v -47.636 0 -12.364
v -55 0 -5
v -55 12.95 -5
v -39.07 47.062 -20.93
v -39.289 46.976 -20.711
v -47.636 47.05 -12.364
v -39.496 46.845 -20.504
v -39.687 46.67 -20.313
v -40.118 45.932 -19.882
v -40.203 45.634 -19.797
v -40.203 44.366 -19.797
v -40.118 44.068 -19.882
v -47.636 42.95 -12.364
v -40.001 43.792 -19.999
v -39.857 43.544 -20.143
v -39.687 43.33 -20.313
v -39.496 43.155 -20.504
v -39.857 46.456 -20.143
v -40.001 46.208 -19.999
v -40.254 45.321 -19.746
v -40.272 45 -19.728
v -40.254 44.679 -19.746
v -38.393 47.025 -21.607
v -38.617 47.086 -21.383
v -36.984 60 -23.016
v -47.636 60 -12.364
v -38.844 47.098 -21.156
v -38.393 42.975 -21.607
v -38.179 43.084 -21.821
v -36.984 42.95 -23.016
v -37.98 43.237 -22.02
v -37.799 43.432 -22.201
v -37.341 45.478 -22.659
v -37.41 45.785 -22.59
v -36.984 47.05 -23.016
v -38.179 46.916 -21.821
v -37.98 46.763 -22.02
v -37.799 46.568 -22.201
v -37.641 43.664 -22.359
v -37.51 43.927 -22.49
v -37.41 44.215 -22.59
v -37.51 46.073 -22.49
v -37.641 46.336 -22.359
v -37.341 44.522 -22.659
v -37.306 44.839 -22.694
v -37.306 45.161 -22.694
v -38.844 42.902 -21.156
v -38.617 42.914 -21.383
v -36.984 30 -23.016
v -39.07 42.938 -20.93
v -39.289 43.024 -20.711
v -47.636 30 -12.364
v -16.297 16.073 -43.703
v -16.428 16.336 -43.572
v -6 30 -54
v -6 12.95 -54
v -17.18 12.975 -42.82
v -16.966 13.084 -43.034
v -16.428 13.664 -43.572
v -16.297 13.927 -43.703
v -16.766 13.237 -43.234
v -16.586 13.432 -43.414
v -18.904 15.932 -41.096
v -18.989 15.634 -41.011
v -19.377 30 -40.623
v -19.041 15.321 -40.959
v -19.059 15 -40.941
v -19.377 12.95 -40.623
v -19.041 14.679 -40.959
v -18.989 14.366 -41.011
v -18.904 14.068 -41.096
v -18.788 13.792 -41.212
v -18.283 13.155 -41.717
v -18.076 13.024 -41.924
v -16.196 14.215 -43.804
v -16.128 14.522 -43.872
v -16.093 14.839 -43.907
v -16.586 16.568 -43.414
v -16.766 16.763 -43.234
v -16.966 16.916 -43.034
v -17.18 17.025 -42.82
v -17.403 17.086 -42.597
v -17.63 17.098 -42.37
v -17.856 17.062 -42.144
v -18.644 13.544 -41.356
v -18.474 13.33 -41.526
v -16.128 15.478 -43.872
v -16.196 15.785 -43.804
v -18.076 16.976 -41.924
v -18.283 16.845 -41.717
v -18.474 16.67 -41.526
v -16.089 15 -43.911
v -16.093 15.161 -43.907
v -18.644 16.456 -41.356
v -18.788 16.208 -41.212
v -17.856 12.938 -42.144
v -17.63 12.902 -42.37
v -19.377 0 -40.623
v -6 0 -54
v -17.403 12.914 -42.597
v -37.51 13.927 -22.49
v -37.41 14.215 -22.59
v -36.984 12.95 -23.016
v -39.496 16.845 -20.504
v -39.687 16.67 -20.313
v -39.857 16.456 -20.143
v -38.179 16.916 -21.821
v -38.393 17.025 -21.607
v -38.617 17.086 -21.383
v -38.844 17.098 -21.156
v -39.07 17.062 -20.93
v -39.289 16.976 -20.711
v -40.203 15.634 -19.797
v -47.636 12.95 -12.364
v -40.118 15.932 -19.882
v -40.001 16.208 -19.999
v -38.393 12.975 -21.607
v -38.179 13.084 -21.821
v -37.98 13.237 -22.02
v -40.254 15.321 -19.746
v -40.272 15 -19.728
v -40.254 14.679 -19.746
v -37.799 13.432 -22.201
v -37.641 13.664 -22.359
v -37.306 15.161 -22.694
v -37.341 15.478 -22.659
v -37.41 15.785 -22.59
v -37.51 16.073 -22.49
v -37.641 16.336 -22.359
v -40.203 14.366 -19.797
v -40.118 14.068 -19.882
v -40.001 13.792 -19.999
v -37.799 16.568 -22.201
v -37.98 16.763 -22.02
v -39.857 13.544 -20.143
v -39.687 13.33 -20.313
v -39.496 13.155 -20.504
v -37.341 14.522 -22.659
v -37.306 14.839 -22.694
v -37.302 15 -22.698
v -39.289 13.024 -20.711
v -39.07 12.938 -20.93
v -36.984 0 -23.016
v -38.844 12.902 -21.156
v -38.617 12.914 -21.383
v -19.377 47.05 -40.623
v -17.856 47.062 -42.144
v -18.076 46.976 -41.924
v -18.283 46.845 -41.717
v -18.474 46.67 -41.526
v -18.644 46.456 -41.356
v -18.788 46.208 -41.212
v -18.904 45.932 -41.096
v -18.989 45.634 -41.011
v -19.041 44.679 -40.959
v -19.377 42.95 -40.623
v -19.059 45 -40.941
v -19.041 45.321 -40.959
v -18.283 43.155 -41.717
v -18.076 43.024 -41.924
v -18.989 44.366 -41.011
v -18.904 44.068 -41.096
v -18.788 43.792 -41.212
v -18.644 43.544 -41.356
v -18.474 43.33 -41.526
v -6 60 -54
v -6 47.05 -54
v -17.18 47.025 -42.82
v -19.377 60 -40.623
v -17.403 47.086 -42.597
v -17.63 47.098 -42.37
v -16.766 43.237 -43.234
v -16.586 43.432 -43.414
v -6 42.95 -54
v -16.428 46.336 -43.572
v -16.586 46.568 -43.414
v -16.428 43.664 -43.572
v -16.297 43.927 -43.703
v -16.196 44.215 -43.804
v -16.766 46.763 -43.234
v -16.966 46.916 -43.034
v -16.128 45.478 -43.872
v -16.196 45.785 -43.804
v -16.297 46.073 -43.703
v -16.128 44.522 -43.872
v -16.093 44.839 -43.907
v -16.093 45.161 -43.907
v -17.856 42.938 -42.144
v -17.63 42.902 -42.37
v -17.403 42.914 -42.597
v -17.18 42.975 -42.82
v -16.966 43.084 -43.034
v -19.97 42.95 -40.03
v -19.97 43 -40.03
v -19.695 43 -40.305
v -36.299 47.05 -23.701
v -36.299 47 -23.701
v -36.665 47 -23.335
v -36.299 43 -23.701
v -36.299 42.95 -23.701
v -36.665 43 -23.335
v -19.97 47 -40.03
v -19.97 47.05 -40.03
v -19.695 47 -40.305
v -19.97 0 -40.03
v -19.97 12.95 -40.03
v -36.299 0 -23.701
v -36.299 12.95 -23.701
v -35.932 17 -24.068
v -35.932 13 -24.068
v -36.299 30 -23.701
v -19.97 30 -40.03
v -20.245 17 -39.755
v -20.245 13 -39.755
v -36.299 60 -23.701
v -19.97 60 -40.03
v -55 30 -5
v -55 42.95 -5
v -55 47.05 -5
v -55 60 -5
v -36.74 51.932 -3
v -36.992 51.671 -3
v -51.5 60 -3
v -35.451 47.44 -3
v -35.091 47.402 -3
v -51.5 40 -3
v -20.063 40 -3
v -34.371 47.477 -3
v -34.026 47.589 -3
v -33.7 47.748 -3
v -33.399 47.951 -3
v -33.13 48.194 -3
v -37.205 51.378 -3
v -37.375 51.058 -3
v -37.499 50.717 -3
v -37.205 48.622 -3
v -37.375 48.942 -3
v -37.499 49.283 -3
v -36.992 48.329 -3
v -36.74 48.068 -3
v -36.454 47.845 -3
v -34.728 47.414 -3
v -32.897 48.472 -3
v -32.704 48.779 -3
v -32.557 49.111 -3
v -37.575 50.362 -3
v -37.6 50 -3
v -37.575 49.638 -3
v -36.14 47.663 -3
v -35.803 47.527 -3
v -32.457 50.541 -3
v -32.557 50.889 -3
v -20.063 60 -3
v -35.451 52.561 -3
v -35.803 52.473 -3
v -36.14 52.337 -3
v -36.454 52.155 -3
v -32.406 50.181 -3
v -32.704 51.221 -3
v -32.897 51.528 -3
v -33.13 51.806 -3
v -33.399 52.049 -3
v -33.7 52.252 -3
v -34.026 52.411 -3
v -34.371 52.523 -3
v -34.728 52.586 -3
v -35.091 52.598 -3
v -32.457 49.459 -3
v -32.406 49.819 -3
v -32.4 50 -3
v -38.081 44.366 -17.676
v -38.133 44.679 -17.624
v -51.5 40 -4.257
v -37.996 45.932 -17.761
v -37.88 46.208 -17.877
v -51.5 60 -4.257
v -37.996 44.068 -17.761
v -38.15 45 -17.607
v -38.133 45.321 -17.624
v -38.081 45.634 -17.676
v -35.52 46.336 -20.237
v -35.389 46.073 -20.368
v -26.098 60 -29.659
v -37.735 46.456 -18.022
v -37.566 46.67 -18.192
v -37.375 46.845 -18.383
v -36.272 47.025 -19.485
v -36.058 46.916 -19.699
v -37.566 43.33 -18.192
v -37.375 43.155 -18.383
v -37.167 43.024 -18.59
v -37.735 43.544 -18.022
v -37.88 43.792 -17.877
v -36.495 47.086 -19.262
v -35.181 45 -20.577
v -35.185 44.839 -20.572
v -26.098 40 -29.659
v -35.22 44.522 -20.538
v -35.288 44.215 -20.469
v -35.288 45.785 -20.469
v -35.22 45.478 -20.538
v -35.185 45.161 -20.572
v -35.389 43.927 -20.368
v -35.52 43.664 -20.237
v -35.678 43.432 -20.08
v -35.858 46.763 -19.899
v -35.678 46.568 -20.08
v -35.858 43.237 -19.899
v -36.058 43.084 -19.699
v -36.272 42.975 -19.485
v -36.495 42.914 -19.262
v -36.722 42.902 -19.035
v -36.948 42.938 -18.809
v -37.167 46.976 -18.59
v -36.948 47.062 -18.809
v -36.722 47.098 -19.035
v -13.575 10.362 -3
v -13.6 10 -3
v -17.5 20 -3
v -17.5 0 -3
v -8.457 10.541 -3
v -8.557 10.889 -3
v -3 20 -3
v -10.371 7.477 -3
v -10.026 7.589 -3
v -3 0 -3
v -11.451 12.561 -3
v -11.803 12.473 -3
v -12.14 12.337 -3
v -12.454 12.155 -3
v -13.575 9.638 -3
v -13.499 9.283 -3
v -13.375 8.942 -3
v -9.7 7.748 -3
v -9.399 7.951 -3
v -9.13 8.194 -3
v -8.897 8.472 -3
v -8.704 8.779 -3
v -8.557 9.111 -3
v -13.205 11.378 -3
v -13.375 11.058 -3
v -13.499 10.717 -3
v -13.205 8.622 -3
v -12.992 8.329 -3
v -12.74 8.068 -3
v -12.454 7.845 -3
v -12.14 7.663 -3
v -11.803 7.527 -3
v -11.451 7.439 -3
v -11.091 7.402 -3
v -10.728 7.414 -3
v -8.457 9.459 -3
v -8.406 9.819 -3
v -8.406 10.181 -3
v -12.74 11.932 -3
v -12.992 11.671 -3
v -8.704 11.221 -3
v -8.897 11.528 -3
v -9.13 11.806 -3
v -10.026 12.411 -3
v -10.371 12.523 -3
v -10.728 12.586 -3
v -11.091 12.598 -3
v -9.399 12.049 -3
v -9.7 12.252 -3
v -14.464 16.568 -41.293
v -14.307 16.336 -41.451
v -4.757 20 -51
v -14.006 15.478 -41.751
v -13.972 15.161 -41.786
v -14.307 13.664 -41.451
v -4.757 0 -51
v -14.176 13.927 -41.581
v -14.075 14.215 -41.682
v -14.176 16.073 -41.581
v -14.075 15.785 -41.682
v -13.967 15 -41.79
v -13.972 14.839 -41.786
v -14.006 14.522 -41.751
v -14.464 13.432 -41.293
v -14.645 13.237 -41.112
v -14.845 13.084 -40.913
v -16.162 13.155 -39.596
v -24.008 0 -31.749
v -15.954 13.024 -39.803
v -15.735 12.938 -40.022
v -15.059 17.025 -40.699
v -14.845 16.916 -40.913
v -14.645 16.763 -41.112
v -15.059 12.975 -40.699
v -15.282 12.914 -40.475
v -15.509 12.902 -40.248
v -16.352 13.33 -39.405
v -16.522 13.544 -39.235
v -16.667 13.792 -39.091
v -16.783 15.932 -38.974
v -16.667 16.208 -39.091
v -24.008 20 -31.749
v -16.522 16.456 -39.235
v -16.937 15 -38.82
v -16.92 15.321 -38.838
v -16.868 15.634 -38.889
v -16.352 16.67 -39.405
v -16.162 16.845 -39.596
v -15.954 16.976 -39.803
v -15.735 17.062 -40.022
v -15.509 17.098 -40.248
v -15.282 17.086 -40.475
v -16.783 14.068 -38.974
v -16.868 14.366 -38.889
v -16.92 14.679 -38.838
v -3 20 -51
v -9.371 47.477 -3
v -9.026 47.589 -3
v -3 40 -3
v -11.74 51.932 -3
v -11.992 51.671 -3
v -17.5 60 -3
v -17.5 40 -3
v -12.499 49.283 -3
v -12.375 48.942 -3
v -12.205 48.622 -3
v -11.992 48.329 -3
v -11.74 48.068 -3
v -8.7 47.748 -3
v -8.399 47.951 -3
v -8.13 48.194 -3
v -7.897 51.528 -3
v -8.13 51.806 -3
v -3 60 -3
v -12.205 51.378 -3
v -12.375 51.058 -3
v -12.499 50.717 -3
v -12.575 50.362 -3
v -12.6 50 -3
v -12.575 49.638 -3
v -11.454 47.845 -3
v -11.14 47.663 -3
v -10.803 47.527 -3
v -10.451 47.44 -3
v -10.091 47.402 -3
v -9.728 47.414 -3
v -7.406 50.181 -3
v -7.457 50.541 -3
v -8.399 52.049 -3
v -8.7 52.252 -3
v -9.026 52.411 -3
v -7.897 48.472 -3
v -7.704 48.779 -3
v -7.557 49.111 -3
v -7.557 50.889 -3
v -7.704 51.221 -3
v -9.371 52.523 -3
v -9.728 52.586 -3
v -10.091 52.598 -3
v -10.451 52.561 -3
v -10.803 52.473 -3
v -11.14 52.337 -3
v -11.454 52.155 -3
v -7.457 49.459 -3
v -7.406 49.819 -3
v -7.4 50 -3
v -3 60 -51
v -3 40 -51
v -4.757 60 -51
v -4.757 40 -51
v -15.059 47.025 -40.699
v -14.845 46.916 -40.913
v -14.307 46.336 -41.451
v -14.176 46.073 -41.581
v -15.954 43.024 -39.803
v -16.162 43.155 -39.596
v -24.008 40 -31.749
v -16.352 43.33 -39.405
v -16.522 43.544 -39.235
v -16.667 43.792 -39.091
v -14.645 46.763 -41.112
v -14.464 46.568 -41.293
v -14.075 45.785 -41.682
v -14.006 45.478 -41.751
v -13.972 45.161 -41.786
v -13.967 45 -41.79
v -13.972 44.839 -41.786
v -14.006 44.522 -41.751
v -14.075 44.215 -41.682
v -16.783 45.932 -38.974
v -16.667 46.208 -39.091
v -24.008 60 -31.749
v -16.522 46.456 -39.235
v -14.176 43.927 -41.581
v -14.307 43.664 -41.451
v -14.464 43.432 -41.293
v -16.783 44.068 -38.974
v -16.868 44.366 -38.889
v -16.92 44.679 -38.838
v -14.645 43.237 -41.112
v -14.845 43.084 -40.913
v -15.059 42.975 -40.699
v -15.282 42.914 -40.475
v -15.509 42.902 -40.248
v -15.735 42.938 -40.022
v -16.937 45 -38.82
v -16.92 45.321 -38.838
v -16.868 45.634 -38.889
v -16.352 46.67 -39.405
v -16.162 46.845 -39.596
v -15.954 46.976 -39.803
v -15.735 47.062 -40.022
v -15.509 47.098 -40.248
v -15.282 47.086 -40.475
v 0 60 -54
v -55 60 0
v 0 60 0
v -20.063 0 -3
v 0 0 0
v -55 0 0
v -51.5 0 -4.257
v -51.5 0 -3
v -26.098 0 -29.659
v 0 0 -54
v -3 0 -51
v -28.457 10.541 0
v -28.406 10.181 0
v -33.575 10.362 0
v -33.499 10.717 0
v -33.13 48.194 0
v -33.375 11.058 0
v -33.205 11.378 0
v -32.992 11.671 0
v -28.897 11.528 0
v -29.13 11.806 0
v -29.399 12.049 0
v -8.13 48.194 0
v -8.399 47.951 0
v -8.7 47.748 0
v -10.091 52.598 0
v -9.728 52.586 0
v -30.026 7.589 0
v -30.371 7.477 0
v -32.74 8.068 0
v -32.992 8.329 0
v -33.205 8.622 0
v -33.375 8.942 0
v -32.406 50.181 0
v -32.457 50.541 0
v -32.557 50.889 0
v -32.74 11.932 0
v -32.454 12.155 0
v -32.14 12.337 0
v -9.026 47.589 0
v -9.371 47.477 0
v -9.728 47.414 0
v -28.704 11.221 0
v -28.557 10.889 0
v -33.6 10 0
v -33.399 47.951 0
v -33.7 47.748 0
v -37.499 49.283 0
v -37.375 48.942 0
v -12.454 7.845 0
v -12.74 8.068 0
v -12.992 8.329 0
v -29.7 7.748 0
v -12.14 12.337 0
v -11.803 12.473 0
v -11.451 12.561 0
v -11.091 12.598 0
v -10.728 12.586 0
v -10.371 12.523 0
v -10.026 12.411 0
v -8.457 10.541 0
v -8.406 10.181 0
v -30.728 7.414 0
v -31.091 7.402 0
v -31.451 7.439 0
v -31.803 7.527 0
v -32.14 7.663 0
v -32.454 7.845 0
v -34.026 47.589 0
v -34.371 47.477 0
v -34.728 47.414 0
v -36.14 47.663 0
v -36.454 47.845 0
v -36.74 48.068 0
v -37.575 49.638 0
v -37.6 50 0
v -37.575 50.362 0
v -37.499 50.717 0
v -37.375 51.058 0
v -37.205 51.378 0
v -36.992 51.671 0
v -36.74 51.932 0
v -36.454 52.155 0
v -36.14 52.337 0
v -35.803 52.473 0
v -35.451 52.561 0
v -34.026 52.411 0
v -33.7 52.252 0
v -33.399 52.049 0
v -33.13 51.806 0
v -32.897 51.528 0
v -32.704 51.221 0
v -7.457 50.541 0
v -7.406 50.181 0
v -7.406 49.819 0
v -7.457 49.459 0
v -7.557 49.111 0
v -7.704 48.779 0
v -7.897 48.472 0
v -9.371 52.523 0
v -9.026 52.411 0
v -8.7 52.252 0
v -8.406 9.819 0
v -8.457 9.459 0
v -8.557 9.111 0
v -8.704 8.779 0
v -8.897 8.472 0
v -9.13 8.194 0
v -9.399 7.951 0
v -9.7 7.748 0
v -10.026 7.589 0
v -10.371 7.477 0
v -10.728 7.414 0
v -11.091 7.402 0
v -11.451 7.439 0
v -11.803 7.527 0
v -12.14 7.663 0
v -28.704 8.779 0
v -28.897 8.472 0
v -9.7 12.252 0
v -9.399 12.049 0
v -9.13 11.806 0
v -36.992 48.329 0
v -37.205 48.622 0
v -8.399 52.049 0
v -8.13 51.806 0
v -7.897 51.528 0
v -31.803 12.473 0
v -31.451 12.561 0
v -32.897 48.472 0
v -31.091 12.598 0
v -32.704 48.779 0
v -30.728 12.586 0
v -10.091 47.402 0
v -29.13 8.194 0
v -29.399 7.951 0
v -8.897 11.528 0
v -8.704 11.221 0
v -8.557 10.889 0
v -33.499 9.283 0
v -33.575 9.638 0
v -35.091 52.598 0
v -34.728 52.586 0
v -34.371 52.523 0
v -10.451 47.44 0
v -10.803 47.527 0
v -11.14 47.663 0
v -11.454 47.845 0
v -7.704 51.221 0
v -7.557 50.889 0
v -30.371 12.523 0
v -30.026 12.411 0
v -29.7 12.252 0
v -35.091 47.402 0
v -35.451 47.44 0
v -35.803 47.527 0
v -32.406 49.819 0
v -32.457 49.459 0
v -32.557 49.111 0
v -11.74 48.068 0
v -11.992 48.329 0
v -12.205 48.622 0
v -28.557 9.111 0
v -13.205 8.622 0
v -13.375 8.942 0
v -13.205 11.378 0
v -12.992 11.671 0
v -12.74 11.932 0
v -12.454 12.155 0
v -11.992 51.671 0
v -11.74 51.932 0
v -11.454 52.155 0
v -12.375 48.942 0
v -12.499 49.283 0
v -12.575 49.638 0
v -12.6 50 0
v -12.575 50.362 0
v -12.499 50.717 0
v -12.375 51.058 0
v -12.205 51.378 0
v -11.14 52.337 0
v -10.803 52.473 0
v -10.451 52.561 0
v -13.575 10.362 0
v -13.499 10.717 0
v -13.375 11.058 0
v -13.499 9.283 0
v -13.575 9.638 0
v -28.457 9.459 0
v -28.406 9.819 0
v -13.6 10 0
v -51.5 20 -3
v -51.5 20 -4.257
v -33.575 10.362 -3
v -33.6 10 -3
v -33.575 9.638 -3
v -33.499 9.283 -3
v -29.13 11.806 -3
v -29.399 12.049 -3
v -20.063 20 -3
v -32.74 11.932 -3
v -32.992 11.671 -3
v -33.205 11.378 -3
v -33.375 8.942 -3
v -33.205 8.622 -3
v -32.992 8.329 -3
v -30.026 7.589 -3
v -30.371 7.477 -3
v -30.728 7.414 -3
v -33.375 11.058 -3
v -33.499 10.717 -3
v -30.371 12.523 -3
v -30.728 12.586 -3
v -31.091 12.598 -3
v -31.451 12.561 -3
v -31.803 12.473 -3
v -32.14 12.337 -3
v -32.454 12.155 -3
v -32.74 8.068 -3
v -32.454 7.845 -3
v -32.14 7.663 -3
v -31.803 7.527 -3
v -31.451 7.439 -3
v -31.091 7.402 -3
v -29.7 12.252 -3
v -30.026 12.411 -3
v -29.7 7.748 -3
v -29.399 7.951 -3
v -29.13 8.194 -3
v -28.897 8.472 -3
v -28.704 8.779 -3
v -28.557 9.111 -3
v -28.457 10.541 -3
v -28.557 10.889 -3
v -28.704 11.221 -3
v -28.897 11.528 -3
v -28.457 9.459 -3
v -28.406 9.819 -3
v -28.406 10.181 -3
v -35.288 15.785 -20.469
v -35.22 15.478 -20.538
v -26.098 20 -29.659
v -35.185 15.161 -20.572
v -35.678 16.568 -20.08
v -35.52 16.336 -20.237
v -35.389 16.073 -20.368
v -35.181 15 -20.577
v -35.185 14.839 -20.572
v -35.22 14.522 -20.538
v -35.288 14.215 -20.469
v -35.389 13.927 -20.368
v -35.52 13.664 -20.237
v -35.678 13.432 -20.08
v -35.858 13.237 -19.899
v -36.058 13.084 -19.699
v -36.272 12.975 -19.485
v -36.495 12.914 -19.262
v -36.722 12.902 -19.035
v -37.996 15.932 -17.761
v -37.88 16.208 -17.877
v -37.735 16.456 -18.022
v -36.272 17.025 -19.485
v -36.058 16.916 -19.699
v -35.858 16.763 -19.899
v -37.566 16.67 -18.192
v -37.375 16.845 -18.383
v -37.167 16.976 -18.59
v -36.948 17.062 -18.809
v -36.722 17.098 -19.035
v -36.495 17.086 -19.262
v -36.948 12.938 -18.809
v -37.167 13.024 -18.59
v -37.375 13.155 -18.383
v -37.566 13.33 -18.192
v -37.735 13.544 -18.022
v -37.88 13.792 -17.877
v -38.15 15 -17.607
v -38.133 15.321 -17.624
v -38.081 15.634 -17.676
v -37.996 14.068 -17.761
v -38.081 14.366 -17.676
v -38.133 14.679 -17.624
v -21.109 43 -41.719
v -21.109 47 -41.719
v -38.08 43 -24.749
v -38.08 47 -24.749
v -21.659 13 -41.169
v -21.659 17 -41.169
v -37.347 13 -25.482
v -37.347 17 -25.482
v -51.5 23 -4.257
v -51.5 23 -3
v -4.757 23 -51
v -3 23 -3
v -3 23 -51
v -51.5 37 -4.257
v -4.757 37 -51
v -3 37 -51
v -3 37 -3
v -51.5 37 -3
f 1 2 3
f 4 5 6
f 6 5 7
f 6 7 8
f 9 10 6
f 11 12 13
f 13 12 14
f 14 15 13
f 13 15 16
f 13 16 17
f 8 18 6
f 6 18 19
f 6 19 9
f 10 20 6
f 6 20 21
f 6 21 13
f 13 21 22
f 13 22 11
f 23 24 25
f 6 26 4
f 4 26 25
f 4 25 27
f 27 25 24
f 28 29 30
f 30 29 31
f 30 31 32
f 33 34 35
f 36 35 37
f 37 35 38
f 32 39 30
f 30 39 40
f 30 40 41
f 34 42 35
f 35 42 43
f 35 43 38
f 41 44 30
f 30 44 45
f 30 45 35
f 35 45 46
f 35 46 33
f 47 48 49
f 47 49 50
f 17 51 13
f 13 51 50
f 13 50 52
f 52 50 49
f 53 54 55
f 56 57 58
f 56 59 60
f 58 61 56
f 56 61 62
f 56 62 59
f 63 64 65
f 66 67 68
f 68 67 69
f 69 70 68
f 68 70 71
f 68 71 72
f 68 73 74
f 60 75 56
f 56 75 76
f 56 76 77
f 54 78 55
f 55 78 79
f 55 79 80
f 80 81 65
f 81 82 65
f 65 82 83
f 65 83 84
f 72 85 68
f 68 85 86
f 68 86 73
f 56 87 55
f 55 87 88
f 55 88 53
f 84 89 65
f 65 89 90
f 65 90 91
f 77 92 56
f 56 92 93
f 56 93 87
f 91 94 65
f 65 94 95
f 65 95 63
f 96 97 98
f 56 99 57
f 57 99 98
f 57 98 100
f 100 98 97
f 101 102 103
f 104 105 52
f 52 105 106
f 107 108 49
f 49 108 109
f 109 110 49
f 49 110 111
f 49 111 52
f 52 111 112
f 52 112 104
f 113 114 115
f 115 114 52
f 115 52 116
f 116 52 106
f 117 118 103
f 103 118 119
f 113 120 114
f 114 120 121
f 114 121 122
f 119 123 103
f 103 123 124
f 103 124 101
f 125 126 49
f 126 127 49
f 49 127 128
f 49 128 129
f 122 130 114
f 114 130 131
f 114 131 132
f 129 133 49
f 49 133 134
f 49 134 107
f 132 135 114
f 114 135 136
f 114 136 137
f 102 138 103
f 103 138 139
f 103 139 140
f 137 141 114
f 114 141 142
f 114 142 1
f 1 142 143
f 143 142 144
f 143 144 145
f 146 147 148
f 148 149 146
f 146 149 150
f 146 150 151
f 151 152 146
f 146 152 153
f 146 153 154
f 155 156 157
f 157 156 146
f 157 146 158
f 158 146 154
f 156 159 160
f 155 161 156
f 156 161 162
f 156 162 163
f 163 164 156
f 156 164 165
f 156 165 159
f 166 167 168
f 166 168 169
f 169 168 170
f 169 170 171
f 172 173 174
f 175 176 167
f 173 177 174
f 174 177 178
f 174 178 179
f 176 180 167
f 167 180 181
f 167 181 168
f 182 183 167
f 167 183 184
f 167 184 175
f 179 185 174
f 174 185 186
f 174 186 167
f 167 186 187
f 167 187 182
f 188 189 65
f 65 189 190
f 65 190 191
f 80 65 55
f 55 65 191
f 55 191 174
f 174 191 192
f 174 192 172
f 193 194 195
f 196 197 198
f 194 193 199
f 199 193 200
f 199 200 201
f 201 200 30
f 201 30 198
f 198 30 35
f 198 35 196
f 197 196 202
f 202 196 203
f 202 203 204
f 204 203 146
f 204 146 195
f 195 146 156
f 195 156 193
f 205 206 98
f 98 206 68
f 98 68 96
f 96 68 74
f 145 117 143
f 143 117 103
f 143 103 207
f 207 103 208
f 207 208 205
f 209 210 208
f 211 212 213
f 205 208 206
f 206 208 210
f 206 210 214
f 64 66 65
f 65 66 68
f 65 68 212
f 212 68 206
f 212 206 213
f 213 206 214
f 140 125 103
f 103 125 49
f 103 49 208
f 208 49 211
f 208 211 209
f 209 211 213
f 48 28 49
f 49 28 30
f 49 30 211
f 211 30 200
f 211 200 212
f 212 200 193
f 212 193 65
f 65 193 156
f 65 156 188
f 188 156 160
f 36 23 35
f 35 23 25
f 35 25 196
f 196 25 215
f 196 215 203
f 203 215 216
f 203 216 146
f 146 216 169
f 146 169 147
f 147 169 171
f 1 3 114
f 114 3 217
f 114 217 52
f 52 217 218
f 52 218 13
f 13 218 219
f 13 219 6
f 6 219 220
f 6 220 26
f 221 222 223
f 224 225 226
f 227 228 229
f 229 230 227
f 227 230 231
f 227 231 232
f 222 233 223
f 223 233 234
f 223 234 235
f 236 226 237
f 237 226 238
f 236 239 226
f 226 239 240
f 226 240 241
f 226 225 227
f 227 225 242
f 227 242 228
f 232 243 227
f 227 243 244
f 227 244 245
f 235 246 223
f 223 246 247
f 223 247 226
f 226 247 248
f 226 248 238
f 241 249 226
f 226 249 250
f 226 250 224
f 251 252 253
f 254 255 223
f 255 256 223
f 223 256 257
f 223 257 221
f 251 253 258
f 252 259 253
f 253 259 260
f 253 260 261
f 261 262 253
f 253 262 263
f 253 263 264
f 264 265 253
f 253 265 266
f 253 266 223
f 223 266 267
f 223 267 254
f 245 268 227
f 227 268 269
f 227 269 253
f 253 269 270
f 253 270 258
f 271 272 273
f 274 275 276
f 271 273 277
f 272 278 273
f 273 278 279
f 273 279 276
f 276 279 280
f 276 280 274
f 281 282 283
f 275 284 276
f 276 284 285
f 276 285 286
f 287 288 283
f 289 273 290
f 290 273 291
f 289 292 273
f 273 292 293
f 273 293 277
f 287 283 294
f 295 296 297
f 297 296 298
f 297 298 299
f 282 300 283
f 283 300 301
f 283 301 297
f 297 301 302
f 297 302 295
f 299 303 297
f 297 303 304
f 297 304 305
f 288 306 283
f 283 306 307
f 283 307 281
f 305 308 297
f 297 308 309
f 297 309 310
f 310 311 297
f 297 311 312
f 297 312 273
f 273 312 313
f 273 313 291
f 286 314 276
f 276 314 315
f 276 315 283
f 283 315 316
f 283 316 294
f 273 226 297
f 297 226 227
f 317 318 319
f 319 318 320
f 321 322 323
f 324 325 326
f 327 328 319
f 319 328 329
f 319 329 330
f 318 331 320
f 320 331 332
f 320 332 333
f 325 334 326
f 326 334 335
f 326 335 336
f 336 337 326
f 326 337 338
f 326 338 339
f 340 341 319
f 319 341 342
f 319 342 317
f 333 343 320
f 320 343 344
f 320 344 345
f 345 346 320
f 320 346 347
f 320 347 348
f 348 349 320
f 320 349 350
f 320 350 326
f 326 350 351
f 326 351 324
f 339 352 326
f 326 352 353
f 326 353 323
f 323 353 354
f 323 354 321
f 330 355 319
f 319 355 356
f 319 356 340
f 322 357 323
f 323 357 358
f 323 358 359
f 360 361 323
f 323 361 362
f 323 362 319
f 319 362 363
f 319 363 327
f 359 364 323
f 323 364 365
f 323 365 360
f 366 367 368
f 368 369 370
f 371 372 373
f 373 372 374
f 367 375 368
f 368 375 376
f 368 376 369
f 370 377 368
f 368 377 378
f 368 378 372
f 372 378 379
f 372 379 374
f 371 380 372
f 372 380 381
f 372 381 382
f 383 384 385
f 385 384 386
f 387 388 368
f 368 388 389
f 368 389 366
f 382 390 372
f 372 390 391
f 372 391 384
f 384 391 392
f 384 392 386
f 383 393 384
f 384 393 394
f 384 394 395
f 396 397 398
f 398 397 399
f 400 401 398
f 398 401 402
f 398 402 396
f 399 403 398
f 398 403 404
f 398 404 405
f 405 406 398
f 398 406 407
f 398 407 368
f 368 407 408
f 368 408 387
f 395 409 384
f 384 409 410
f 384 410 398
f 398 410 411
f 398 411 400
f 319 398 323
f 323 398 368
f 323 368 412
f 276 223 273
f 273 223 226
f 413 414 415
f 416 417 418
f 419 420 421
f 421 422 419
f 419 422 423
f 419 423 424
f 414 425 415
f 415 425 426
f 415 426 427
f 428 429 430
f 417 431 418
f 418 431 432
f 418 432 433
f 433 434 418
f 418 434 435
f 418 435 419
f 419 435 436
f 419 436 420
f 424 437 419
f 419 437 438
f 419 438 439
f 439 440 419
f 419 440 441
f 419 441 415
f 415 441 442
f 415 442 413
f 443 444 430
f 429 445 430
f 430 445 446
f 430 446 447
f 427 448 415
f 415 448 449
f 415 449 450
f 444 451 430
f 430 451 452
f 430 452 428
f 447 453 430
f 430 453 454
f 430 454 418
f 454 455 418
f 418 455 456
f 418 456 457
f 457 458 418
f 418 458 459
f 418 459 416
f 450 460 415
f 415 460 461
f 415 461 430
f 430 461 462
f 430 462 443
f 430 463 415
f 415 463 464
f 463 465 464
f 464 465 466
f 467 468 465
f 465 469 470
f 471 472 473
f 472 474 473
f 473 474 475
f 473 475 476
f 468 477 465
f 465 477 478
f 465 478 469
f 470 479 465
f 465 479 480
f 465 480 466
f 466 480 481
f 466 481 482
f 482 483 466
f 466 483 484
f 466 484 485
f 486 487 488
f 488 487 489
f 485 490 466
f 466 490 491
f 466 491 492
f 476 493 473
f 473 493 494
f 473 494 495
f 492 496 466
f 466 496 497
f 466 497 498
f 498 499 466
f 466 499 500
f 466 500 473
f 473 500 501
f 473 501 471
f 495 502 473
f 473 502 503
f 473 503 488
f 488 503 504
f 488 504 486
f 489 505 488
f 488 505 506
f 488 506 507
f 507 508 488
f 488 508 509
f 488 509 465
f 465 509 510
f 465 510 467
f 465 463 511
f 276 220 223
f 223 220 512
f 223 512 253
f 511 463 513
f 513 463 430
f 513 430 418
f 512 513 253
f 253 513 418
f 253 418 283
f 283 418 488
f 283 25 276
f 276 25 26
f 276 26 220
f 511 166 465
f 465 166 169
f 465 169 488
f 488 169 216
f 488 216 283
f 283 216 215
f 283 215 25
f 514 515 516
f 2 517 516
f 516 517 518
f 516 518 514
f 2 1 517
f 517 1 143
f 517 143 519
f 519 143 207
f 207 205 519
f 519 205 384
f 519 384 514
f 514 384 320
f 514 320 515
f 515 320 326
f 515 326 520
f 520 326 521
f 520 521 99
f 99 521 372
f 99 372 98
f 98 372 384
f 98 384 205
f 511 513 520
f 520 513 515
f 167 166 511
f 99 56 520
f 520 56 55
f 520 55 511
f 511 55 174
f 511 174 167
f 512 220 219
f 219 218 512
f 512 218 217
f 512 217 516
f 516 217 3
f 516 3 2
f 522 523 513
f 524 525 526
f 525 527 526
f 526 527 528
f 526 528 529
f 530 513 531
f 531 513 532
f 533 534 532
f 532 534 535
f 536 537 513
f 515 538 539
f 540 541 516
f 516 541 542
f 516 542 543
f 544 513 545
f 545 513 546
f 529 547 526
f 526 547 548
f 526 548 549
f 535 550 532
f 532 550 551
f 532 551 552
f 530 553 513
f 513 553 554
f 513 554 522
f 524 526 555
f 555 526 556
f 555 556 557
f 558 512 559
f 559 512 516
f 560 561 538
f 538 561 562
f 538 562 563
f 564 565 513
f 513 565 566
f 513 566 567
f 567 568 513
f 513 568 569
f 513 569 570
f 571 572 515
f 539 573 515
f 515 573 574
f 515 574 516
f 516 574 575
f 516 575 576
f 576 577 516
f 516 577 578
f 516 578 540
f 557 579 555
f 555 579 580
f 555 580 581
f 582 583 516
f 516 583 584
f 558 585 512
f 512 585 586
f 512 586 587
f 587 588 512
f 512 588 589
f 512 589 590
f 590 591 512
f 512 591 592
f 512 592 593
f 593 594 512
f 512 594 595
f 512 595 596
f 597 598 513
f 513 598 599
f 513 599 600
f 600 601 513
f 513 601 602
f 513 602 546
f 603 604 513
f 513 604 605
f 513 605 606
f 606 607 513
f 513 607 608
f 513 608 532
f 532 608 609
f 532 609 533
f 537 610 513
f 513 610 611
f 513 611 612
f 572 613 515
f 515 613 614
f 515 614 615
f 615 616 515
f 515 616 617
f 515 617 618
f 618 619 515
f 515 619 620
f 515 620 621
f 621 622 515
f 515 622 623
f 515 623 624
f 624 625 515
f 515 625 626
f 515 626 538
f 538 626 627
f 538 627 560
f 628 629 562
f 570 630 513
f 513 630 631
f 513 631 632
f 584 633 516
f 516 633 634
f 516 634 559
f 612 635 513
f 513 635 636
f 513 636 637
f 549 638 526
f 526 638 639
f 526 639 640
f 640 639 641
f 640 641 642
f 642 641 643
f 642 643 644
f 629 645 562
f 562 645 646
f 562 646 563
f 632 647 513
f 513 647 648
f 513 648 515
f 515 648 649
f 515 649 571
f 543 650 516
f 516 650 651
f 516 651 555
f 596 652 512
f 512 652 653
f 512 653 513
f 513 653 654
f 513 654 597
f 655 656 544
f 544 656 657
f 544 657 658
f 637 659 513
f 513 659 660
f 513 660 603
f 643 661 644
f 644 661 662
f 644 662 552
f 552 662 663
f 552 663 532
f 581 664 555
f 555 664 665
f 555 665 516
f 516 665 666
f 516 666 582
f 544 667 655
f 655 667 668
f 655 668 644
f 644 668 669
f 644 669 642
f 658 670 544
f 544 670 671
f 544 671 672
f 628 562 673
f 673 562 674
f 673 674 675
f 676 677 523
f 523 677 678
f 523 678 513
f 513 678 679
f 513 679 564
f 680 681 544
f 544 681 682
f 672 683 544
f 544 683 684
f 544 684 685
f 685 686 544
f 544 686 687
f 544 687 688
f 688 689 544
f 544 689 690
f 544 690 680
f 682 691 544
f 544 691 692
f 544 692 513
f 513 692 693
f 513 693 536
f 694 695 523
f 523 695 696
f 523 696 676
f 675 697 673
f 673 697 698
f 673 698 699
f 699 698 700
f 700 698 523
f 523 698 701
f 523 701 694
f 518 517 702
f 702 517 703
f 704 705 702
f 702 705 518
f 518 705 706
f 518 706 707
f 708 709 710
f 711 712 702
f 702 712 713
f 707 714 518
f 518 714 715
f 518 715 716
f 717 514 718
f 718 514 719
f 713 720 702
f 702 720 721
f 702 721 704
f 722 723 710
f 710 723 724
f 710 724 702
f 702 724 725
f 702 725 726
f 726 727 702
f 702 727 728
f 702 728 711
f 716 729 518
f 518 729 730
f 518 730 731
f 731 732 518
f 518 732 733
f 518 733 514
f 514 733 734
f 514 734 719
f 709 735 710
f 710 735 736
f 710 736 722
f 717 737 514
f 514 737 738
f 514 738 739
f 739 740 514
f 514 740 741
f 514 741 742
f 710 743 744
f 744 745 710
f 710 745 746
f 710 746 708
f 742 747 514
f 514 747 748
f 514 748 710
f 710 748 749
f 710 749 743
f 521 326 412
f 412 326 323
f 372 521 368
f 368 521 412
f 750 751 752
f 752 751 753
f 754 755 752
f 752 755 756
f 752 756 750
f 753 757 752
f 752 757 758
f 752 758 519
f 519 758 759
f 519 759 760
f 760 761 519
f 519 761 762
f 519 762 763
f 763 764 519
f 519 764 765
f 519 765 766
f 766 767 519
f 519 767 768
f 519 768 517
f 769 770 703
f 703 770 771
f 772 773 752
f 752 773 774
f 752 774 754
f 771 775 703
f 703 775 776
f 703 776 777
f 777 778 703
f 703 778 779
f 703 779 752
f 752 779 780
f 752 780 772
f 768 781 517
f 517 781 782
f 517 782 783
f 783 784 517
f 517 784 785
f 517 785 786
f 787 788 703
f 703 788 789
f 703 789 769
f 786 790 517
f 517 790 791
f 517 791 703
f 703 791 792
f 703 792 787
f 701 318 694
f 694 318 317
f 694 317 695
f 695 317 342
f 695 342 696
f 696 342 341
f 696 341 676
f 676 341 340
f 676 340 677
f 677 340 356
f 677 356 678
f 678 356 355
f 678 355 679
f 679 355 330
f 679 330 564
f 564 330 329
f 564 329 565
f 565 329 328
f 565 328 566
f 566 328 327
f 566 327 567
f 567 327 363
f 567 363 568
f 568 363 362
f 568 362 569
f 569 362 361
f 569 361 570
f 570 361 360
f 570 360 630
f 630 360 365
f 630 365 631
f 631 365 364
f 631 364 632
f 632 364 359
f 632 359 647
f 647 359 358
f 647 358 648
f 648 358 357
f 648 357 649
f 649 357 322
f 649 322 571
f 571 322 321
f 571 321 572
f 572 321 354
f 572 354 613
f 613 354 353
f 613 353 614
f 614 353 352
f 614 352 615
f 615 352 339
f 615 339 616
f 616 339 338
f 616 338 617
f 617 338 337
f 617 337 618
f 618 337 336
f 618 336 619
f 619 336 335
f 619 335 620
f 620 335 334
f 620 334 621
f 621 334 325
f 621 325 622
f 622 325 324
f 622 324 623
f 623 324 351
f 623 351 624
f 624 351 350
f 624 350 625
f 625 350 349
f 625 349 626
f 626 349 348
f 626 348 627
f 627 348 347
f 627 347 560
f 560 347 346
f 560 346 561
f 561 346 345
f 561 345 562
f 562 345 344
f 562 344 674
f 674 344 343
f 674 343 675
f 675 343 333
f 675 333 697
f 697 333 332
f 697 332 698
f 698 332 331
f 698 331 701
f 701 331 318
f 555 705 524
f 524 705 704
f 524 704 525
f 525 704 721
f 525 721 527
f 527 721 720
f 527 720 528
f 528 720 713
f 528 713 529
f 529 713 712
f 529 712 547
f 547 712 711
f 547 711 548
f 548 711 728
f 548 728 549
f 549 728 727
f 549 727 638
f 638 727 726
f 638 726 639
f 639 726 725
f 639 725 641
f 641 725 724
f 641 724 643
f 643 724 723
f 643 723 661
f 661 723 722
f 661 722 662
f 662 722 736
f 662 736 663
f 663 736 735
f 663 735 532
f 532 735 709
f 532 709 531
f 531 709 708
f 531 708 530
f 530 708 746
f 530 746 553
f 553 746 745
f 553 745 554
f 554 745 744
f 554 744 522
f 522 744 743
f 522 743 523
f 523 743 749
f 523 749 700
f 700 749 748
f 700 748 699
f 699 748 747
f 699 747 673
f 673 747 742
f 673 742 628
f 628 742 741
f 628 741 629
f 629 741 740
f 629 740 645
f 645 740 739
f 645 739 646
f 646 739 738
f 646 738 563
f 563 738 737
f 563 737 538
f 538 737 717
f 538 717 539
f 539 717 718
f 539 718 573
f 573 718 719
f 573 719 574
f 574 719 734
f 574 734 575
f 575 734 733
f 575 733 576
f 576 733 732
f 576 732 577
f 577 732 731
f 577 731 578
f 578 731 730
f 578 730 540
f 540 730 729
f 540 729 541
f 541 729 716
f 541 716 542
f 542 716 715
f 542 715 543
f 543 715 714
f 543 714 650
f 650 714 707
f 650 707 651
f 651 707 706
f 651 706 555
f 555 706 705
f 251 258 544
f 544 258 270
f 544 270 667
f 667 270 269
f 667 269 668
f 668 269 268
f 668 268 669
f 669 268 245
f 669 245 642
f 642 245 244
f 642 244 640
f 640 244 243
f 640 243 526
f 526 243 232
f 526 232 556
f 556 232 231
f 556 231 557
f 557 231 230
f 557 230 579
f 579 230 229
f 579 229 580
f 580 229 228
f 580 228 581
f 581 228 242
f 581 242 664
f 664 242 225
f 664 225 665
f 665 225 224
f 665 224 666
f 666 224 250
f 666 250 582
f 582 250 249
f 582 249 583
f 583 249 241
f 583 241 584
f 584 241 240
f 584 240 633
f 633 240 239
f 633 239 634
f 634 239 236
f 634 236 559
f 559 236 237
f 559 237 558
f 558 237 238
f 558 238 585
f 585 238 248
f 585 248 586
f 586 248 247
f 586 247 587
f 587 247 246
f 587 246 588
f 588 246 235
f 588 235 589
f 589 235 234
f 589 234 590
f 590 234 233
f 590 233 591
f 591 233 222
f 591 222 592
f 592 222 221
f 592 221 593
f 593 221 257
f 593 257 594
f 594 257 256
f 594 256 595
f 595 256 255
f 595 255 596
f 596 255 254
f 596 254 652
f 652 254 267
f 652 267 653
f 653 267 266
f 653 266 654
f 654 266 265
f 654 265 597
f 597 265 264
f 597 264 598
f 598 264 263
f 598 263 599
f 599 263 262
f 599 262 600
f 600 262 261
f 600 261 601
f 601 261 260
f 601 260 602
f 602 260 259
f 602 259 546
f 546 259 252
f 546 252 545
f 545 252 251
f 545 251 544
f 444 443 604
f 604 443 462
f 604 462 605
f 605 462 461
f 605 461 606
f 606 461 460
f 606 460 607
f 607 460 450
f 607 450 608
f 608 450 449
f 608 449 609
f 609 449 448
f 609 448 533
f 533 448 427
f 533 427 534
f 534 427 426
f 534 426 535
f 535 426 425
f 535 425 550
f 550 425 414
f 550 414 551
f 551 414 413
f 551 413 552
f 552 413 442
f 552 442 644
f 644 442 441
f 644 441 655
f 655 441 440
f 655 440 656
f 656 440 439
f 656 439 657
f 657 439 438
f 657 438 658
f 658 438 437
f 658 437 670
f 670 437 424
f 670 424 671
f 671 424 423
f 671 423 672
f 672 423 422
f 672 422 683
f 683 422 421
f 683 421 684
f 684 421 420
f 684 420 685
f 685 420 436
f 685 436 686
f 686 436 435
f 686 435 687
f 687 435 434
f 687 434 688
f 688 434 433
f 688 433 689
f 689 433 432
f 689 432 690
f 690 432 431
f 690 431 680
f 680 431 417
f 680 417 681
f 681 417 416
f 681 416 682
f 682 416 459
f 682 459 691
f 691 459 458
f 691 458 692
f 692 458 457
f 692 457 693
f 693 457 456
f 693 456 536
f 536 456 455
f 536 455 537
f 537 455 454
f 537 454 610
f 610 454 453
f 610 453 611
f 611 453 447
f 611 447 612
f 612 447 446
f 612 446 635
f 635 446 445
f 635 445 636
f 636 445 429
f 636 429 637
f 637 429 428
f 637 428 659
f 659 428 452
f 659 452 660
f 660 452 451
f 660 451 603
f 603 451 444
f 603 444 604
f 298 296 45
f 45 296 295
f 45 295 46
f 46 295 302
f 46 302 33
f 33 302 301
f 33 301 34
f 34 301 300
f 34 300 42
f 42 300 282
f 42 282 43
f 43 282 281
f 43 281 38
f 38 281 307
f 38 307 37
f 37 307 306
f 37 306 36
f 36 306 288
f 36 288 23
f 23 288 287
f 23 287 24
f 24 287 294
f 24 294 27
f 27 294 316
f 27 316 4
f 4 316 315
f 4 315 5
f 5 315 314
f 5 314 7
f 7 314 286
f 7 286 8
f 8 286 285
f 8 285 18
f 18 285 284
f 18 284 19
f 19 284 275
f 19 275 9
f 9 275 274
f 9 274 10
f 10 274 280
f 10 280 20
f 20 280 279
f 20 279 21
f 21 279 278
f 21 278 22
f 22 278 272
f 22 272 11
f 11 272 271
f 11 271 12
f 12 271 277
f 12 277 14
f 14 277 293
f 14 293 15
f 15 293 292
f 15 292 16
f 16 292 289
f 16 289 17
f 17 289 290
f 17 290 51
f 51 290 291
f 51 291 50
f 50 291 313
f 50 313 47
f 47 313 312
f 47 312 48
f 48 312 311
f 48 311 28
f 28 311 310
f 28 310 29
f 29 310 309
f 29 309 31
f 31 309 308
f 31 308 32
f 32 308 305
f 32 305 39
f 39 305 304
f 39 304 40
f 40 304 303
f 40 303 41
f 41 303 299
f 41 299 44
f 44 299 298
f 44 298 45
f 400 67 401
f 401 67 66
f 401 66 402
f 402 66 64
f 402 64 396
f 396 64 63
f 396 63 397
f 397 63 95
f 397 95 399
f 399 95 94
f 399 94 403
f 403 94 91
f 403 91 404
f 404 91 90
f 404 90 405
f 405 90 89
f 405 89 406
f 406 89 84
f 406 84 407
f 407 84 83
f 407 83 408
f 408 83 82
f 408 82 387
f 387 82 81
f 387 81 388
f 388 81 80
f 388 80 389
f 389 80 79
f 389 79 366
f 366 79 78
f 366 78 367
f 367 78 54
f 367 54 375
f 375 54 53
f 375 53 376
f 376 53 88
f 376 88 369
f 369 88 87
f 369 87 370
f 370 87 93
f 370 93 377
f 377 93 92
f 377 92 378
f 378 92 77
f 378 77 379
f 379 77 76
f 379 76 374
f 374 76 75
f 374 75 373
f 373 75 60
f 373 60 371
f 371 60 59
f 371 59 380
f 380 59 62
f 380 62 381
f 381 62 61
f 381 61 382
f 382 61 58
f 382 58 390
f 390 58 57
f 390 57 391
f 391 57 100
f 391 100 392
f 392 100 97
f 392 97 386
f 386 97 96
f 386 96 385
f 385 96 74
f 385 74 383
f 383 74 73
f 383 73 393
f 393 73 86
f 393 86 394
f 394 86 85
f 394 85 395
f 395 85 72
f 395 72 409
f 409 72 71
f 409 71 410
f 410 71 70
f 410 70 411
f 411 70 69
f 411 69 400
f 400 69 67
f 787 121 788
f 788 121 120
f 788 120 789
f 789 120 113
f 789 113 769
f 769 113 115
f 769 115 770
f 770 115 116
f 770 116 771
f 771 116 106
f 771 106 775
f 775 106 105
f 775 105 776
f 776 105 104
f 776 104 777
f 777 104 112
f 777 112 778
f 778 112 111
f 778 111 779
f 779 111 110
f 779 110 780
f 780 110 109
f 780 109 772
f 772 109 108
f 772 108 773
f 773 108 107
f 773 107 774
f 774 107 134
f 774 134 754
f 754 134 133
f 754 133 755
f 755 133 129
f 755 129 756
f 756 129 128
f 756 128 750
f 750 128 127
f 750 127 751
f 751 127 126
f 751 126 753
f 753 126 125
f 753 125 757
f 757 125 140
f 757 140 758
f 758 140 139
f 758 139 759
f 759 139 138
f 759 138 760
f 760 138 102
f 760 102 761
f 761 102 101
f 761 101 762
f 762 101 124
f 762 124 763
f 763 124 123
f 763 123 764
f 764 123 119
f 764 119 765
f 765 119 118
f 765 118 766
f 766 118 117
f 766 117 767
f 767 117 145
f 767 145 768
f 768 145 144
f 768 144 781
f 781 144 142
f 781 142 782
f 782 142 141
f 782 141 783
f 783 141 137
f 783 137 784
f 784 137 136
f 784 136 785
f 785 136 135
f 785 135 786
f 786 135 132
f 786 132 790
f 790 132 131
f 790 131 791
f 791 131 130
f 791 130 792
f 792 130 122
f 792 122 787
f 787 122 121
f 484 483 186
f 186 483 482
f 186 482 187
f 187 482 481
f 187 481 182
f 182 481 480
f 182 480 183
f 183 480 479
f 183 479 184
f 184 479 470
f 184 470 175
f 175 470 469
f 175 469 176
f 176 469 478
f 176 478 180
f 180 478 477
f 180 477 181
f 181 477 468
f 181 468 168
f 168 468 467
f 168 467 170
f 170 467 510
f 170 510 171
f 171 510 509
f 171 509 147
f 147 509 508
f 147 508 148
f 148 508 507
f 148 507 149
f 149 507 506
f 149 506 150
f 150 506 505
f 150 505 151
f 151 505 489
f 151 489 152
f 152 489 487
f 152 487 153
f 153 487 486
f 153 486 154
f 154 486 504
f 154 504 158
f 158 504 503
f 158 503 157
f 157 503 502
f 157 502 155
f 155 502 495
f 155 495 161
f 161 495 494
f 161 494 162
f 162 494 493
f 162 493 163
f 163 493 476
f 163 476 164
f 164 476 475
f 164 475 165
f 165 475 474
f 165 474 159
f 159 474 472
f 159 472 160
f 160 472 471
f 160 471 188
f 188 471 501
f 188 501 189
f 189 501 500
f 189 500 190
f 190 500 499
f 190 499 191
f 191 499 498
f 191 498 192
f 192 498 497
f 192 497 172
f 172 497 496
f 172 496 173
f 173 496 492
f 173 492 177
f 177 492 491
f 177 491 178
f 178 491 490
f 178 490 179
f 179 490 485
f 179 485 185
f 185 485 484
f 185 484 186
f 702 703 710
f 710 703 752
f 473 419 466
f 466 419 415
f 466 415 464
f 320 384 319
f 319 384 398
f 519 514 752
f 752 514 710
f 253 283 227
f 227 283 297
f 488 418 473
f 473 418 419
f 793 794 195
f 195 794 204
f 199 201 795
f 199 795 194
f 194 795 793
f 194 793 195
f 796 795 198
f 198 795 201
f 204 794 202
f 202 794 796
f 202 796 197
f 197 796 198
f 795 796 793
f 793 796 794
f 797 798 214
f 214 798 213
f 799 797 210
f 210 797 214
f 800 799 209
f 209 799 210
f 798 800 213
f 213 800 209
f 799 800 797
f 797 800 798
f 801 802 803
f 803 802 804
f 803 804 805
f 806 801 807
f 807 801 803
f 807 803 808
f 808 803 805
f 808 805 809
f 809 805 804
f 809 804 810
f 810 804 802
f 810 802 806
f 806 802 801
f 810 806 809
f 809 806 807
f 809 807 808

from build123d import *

# Parameters (mm, degrees)
EXTRUDE_1_DEPTH     = 60
SKETCH_3_R          = 2.6
CUT_EXTRUDE_1_DEPTH = 10
SKETCH_4_R          = 2.1
CUT_EXTRUDE_2_DEPTH = 10
EXTRUDE_2_DEPTH     = 3
EXTRUDE_3_DEPTH     = 3
EXTRUDE_4_DEPTH     = 20
EXTRUDE_5_DEPTH     = 20
SKETCH_11_W         = 24
SKETCH_11_H         = 4
SKETCH_11_W_2       = 22.185080678
EXTRUDE_6_DEPTH     = 2


with BuildPart() as part:
    # 草图1 → 凸台-拉伸1 (new body)
    with BuildSketch(Plane(origin=(0, 0, 0), x_dir=(1, 0, 0), z_dir=(0, 1, 0))):
        Polygon((0, 0), (-55, 0), (-55, 5), (-6, 54), (0, 54), align=None)
        Polygon((-4.757359313, 51), (-51.5, 4.257359313), (-51.5, 3), (-3, 3), (-3, 51), align=None, mode=Mode.SUBTRACT)
    extrude(amount=EXTRUDE_1_DEPTH)

    # 草图3 → 切除-拉伸1 (cut)
    with BuildSketch(Plane(origin=(0, 0, -3), x_dir=(-1, 0, 0), z_dir=(0, 0, -1))):
        with Locations((11, 10)):
            Circle(SKETCH_3_R)
        with Locations((31, 10)):
            Circle(SKETCH_3_R)
        with Locations((35, 50)):
            Circle(SKETCH_3_R)
        with Locations((10, 50)):
            Circle(SKETCH_3_R)
    extrude(amount=-CUT_EXTRUDE_1_DEPTH, mode=Mode.SUBTRACT)

    # 草图4 → 切除-拉伸2 (cut)
    with BuildSketch(Plane(origin=(-30, 0, -30), x_dir=(-0.7071067811865511, 0, 0.7071067811865439), z_dir=(-0.7071067811865439, 0, -0.7071067811865511))):
        with Locations((12.426406871, 45)):
            Circle(SKETCH_4_R)
        with Locations((-17.573593129, 45)):
            Circle(SKETCH_4_R)
        with Locations(Location((12.426406871, 15, 0), (0, 0, 180))):
            Circle(SKETCH_4_R)
        with Locations(Location((-17.573593129, 15, 0), (0, 0, 180))):
            Circle(SKETCH_4_R)
    extrude(amount=-CUT_EXTRUDE_2_DEPTH, mode=Mode.SUBTRACT)

    # 草图7 → 凸台-拉伸2 (add)
    with BuildSketch(Plane(origin=(0, 20, 0), x_dir=(-1, 0, 0), z_dir=(0, -1, 0))):
        Polygon((3, 52.757359313), (51.5, 4.257359313), (51.5, 3), (3, 3), align=None)
    extrude(amount=-EXTRUDE_2_DEPTH)

    # 草图8 → 凸台-拉伸3 (add)
    with BuildSketch(Plane(origin=(0, 40, 0), x_dir=(1, 0, 0), z_dir=(0, 1, 0))):
        Polygon((-3, 51), (-4.757359313, 51), (-51.5, 4.257359313), (-51.5, 3), (-3, 3), align=None)
    extrude(amount=-EXTRUDE_3_DEPTH)

    # 草图9 → 凸台-拉伸4 (add)
    with BuildSketch(Plane.XZ):
        Polygon((-20.063260388, -3), (-26.098365074, -29.658994238), (-24.008264838, -31.749094475), (-17.5, -3), align=None)
    extrude(amount=-EXTRUDE_4_DEPTH)

    # 草图10 → 凸台-拉伸5 (add)
    with BuildSketch(Plane(origin=(0, 60, 0), x_dir=(1, 0, 0), z_dir=(0, 1, 0))):
        Polygon((-26.098365074, 29.658994238), (-24.008264838, 31.749094475), (-17.5, 3), (-20.063260388, 3), align=None)
    extrude(amount=-EXTRUDE_5_DEPTH)

    # 草图11 → 凸台-拉伸6 (add)
    with BuildSketch(Plane(origin=(-30, 0, -30), x_dir=(-0.7071067811865511, 0, 0.707106781186544), z_dir=(-0.707106781186544, 0, -0.7071067811865511))):
        with Locations((-2.573593129, 45)):
            Rectangle(SKETCH_11_W, SKETCH_11_H)
        with Locations((-2.702962181, 15)):
            Rectangle(SKETCH_11_W_2, SKETCH_11_H)
    extrude(amount=EXTRUDE_6_DEPTH)


solid = part.part
